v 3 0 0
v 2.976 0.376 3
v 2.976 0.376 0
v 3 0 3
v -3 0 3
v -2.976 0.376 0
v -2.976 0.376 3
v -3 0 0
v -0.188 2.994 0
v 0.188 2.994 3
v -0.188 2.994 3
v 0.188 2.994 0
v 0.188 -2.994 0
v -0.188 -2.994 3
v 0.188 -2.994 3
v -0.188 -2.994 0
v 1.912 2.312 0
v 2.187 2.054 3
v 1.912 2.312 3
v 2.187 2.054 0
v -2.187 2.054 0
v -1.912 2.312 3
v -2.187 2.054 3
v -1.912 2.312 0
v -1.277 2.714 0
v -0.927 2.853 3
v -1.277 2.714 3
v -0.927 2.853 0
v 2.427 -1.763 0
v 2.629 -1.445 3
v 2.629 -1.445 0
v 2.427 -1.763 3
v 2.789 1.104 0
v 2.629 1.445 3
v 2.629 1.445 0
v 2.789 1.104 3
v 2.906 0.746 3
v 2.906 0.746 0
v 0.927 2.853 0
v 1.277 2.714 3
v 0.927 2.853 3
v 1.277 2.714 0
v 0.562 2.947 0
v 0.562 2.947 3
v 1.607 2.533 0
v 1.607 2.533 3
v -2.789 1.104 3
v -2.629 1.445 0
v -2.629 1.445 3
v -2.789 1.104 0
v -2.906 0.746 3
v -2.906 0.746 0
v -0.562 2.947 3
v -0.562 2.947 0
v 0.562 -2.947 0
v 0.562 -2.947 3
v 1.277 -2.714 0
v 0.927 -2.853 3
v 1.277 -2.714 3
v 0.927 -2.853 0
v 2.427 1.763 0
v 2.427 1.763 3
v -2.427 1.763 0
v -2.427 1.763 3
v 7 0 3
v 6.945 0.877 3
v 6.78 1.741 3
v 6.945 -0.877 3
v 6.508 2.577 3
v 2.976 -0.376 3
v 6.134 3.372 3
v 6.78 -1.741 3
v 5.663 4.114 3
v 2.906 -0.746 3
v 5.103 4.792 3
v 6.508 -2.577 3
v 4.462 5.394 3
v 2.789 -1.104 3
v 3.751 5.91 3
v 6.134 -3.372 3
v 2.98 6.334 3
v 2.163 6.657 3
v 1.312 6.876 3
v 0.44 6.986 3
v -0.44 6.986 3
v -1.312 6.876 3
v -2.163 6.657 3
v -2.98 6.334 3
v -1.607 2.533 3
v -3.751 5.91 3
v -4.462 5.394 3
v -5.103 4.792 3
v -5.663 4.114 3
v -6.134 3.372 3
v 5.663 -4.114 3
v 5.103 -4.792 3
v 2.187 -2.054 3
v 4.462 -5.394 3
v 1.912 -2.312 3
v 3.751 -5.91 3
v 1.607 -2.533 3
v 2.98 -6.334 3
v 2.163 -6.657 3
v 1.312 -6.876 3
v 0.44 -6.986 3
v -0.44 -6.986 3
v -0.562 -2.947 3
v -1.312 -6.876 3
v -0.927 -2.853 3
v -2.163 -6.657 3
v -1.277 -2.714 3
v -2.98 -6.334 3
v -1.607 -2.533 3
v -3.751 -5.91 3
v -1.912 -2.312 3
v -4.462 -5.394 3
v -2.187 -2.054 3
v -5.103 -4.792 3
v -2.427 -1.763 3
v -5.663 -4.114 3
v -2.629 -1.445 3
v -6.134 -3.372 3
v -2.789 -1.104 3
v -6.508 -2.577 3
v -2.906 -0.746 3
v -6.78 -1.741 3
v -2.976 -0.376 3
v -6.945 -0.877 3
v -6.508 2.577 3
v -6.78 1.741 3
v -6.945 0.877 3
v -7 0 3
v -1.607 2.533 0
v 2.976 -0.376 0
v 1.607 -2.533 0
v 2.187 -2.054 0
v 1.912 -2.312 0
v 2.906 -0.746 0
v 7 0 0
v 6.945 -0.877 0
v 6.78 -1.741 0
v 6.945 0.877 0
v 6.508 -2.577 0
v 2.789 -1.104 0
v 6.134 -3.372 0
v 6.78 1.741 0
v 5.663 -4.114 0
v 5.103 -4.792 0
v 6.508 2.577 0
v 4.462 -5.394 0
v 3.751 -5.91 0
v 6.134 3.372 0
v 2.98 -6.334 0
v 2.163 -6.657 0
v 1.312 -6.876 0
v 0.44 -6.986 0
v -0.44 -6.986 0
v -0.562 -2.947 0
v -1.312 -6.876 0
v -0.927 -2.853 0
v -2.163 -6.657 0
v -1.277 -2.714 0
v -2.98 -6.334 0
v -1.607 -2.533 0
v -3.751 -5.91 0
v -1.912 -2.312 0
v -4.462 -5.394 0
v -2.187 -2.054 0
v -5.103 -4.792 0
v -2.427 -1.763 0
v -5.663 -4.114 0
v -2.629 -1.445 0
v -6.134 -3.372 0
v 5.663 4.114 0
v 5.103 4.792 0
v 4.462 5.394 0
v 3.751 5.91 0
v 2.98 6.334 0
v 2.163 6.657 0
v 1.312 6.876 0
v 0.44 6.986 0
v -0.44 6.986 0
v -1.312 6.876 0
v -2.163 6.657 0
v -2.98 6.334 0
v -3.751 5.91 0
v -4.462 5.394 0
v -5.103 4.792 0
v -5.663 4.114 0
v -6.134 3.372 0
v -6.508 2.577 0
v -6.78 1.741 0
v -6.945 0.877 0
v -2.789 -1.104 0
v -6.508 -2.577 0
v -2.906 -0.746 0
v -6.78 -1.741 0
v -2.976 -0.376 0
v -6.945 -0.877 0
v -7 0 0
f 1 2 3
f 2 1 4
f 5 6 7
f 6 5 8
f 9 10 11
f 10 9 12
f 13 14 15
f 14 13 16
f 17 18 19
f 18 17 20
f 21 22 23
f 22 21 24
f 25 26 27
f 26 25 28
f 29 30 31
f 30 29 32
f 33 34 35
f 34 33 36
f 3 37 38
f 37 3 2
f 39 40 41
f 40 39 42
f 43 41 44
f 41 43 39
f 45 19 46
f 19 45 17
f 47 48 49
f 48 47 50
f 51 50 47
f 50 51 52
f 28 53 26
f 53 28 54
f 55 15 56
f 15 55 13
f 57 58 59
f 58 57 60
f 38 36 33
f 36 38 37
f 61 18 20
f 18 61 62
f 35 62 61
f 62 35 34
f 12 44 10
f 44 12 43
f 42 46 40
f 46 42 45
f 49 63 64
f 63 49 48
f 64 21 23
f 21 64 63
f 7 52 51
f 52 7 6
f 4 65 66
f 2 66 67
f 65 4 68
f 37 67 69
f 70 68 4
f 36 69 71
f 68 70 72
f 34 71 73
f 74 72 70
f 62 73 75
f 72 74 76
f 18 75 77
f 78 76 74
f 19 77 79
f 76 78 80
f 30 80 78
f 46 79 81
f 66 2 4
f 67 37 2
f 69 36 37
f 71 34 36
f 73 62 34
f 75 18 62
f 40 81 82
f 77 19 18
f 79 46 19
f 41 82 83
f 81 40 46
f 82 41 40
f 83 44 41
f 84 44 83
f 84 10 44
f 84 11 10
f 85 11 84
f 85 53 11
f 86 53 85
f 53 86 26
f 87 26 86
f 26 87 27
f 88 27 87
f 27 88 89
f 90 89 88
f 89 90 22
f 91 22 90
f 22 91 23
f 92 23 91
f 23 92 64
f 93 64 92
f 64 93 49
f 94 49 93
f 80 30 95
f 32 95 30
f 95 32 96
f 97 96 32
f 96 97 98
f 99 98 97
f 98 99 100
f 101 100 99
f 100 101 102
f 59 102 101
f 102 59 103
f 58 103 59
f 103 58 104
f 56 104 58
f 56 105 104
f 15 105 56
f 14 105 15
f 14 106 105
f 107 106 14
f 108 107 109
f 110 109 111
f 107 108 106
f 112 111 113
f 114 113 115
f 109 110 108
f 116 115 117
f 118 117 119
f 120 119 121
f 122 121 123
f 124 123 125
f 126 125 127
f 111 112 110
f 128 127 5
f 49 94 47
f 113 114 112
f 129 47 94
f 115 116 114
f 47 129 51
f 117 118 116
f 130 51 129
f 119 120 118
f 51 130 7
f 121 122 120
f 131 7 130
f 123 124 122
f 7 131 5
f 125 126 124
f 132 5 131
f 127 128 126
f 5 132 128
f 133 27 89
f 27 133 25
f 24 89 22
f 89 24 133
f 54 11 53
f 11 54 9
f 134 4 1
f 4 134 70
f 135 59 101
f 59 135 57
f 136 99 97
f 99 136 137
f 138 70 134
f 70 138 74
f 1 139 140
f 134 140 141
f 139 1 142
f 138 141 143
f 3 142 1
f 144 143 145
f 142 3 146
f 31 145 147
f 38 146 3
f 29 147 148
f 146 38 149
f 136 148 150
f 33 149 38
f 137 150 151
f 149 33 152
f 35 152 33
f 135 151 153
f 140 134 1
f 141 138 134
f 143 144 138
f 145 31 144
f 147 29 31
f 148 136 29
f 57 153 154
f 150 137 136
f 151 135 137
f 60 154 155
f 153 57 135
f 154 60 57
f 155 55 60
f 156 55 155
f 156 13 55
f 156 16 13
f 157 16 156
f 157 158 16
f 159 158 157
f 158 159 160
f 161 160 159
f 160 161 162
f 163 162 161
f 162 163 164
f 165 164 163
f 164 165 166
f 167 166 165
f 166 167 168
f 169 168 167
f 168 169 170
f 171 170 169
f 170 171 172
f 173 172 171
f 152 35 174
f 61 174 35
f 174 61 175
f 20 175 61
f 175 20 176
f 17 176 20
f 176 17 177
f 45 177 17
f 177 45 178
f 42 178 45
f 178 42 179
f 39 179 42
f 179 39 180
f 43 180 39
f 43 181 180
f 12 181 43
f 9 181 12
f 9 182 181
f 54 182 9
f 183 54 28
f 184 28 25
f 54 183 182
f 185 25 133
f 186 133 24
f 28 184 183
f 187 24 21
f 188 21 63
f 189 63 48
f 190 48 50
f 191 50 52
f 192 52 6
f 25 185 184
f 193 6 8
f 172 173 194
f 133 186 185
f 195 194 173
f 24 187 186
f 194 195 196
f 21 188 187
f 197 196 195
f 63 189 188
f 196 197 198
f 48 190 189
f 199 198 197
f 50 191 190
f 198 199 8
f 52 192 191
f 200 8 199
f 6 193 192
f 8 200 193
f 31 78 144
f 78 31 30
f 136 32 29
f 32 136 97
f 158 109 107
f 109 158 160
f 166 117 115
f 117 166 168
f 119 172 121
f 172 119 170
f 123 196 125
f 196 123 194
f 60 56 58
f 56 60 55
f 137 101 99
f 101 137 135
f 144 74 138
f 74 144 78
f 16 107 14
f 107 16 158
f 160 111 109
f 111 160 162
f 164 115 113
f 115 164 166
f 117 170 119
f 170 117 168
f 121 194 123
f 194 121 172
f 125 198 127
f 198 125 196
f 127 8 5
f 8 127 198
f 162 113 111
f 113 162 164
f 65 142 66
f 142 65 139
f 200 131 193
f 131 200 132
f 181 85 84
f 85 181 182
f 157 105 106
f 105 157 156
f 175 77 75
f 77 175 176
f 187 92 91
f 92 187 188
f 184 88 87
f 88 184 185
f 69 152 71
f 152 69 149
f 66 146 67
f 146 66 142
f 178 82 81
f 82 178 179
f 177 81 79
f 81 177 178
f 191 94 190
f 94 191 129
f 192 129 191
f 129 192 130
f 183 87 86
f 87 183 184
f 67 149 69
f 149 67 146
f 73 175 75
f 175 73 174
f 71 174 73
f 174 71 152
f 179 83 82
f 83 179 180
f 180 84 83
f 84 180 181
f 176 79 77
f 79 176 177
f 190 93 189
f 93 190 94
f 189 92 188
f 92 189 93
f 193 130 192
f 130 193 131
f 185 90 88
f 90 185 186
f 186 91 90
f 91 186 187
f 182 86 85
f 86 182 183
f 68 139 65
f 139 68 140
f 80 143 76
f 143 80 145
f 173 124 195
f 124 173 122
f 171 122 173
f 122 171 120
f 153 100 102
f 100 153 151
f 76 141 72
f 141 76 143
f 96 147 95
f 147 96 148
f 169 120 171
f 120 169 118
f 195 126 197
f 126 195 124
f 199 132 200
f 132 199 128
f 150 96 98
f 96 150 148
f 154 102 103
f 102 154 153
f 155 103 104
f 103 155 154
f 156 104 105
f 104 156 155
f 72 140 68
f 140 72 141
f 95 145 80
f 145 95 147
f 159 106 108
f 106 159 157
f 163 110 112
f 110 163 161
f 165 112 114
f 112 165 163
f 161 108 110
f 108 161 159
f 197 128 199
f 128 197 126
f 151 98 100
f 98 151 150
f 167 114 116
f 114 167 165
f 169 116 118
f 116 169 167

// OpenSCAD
$fn = 50;


difference() {
	union() {
		cylinder(h = 3, r = 7.0000000000);
	}
	union() {
		cylinder(h = 3, r = 3.0000000000);
		cylinder(h = 3, r = 3.0000000000);
		cylinder(h = 3, r = 1.5000000000);
		cylinder(h = 3, r = 1.5000000000);
		cylinder(h = 3, r = 1.5000000000);
		cylinder(h = 3, r = 1.5000000000);
		cylinder(h = 3, r = 1.5000000000);
		cylinder(h = 3, r = 1.5000000000);
	}
}
